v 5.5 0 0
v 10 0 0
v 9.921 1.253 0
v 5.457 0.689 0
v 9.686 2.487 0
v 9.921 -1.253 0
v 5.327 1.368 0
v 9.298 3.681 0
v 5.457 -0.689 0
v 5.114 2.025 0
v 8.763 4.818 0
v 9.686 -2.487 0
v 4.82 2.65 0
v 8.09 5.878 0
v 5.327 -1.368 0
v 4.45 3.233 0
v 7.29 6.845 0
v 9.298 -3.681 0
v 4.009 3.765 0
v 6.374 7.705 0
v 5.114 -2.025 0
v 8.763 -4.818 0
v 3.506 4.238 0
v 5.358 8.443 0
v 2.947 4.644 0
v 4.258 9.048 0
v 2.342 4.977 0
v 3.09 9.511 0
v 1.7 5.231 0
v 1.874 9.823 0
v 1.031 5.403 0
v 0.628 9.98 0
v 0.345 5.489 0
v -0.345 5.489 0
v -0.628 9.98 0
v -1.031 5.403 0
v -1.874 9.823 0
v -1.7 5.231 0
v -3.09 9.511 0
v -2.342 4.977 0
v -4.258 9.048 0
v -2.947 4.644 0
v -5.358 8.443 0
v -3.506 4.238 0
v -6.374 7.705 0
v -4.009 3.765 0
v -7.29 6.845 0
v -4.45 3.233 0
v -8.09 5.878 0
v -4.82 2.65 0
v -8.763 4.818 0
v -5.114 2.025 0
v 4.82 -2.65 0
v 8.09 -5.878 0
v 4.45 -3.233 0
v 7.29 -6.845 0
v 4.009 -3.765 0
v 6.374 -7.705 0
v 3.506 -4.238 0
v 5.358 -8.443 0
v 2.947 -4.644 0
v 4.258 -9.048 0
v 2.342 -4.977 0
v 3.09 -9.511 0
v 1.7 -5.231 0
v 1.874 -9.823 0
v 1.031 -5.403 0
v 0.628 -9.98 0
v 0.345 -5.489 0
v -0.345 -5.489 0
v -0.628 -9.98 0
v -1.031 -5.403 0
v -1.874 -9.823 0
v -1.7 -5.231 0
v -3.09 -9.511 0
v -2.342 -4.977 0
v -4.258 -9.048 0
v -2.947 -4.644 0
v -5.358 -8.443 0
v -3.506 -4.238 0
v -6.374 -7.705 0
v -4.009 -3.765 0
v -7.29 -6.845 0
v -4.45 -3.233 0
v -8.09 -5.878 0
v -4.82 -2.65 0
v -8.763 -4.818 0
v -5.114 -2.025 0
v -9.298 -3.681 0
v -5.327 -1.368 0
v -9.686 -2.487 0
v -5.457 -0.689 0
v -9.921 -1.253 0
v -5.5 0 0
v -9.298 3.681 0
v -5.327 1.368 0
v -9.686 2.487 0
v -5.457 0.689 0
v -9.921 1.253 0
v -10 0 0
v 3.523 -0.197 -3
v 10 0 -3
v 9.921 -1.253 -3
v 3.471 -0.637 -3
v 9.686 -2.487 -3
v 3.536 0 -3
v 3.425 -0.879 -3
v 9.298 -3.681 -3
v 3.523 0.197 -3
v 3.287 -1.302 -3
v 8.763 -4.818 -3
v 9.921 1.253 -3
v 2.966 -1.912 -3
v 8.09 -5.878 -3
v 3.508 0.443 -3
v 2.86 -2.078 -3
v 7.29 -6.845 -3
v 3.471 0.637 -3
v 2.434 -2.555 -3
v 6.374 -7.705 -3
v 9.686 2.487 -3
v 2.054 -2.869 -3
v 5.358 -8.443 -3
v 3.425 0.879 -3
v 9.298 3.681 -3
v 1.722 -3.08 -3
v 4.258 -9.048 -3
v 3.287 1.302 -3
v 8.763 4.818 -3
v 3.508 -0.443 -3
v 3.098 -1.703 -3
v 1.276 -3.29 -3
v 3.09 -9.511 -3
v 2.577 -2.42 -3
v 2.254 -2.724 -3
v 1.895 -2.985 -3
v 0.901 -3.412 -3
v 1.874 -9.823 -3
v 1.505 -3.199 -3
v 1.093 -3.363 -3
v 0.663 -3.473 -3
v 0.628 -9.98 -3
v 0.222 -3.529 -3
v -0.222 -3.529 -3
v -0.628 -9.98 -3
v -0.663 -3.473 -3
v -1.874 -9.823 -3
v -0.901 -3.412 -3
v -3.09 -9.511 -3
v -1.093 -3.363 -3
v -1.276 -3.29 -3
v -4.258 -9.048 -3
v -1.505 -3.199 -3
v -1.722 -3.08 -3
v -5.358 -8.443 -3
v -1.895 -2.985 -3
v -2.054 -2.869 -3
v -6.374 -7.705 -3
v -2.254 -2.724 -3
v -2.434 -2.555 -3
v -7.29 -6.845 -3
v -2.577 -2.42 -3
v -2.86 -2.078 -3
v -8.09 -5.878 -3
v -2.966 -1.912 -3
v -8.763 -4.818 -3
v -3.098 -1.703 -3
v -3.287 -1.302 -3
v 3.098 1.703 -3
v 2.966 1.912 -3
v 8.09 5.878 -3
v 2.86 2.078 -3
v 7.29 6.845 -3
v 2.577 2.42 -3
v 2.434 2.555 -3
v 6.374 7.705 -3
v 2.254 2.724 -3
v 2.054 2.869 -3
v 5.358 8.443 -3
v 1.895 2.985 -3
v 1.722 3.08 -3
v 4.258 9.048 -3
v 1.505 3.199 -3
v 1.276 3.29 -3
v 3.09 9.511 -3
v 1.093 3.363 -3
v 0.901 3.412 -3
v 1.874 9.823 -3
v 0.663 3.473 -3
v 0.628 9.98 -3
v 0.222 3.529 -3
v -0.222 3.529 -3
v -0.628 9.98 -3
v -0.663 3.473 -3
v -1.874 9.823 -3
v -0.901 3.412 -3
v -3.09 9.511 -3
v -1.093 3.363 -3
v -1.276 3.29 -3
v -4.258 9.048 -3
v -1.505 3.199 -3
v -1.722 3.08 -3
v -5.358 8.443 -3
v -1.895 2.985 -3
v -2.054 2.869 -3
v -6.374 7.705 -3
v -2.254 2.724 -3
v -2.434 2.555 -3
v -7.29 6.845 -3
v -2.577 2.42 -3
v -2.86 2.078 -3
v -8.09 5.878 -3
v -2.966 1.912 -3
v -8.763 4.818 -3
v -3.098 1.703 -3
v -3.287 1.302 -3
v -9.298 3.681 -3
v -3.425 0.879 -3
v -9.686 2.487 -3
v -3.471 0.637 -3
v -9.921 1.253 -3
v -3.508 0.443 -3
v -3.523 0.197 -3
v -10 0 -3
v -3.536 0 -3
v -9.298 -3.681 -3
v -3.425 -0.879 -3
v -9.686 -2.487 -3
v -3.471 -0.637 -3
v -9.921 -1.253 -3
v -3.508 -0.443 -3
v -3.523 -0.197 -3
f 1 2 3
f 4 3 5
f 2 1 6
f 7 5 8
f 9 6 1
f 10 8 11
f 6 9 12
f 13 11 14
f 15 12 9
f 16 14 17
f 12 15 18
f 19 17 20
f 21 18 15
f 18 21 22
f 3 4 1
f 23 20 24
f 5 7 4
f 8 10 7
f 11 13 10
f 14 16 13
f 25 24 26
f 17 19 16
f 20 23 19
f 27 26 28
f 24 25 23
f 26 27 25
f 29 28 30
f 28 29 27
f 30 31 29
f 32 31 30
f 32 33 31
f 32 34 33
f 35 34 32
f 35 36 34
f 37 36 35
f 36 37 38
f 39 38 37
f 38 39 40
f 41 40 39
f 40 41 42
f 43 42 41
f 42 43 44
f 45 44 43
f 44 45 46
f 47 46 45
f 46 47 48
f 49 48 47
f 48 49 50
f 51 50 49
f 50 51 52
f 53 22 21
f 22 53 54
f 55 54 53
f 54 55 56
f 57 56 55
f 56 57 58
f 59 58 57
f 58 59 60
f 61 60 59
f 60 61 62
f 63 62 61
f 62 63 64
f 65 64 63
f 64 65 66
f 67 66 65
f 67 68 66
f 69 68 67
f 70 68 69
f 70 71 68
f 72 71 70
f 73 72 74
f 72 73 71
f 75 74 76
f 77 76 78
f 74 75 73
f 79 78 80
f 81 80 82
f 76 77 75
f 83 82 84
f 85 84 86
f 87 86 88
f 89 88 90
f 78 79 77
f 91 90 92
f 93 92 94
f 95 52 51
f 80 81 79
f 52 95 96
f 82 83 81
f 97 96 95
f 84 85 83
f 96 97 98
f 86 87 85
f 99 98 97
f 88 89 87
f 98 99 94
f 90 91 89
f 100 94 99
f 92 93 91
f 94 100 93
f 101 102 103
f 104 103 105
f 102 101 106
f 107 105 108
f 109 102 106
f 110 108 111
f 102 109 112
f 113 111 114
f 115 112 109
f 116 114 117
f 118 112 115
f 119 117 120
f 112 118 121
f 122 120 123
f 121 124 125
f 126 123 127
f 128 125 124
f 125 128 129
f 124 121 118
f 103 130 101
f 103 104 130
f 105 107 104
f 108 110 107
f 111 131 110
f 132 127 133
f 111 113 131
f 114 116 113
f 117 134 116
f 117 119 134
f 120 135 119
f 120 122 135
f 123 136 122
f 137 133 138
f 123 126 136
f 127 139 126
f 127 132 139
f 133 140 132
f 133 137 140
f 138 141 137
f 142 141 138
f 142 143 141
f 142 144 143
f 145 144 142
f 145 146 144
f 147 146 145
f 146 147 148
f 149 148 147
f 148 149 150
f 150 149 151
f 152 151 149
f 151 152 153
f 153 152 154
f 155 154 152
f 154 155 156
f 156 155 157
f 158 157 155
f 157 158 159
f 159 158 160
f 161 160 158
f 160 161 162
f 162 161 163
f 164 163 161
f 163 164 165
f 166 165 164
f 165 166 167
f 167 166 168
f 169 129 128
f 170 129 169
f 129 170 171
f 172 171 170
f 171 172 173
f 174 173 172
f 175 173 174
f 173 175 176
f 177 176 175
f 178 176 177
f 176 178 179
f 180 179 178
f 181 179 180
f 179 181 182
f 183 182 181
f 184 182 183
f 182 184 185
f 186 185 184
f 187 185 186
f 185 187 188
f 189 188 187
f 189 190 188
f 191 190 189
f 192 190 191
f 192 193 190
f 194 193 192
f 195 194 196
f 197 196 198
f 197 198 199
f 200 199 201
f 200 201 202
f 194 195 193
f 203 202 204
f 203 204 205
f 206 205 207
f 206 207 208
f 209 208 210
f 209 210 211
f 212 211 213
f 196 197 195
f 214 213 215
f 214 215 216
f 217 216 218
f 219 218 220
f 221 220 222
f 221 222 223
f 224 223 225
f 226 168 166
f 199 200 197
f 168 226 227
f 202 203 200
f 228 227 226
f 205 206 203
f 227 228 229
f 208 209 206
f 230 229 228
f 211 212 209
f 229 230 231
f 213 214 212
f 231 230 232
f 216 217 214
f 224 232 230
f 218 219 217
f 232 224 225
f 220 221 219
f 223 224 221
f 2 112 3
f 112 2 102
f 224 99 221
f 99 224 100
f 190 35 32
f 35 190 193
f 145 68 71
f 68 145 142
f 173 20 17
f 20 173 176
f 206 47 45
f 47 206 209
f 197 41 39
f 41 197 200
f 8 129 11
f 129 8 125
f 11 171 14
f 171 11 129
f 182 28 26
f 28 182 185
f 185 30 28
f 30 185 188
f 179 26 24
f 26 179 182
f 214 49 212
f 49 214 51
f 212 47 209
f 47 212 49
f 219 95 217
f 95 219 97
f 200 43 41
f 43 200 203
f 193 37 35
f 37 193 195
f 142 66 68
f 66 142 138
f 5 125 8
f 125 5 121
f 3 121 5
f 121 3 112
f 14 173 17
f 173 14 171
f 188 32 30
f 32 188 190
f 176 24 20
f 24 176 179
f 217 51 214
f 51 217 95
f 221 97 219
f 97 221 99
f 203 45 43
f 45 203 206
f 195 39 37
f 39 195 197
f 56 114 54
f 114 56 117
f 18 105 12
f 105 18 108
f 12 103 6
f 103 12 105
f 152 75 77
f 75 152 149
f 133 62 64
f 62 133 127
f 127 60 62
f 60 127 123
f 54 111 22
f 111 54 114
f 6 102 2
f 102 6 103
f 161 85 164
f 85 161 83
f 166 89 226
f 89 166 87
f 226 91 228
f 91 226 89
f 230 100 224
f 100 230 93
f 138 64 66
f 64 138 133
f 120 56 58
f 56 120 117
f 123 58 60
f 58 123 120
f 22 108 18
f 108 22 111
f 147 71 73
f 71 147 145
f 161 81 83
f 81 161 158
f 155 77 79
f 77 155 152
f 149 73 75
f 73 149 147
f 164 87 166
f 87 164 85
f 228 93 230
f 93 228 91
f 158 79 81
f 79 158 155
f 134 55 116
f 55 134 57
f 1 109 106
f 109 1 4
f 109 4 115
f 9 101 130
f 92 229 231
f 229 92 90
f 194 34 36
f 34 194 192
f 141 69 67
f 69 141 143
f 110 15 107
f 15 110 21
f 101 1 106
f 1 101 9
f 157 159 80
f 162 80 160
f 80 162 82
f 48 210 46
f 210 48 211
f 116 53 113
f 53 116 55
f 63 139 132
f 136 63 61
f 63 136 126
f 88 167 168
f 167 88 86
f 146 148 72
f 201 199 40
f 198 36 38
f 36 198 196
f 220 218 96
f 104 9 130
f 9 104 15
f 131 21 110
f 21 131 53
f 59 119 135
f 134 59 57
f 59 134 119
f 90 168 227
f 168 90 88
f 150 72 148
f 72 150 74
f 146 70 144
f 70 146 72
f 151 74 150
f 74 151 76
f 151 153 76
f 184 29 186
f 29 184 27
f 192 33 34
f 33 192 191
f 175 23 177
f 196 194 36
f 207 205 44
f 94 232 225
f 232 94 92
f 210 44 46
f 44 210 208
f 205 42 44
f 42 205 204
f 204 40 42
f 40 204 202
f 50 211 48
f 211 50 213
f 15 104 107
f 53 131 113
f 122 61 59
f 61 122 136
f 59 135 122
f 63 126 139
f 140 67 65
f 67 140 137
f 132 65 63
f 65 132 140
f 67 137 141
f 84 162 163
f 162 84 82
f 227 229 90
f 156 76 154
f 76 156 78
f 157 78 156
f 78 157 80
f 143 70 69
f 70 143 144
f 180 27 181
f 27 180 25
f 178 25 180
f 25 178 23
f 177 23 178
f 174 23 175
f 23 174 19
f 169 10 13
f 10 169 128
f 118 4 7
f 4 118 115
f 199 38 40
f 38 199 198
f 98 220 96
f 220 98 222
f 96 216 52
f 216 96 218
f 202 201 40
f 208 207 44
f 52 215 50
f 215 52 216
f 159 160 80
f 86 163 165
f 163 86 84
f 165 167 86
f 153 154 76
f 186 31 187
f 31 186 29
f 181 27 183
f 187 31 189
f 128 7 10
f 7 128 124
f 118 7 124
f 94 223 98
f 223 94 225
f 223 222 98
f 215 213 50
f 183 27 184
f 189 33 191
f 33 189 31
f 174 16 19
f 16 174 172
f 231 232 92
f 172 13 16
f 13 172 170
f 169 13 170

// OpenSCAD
$fn = 50;


difference() {
	union() {
		translate(v = [0, 0, -3.0000000000]) {
			cylinder(h = 3, r = 7.0000000000);
		}
		translate(v = [0, 0, -3.0000000000]) {
			cylinder(h = 3, r = 10.0000000000);
		}
	}
	union() {
		translate(v = [0, 0, 0]) {
			rotate(a = [0, 0, 0]) {
				difference() {
					union() {
						#translate(v = [0, 0, -3.0000000000]) {
							cylinder(h = 3, r = 2.2500000000);
						}
						#translate(v = [0, 0, -4.2000000000]) {
							cylinder(h = 4.2000000000, r1 = 2.7500000000, r2 = 5.5000000000);
						}
						#translate(v = [0, 0, -3.0000000000]) {
							cylinder(h = 3, r = 2.7500000000);
						}
						#translate(v = [0, 0, -3.0000000000]) {
							cylinder(h = 3, r = 2.2500000000);
						}
					}
					union();
				}
			}
		}
	}
}
